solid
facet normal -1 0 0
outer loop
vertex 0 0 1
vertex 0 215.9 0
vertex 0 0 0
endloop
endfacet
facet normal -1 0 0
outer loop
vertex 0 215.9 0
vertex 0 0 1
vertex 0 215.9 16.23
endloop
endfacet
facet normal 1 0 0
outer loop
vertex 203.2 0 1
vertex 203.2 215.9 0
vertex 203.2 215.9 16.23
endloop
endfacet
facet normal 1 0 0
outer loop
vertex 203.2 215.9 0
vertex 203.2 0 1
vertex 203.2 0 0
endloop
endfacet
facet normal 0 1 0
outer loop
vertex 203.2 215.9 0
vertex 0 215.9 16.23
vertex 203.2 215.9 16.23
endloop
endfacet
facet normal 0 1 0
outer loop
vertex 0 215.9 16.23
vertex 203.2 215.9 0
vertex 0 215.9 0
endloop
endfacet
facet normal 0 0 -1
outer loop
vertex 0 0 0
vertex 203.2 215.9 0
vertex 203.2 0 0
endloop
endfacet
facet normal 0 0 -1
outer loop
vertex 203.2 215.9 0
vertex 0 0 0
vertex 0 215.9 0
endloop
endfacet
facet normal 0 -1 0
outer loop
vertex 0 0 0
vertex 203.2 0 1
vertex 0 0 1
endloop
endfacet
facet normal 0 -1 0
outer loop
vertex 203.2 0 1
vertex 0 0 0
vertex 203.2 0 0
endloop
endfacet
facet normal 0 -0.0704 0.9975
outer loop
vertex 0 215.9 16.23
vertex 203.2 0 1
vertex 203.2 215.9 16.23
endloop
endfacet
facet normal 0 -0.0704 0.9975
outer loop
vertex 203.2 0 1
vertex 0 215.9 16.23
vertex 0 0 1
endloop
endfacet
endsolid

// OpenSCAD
// Customize the invocations (which follow
// the modules declarations) at the bottom of the file.

// To get these to print the fine features created
// by the "text" command, I set "Outer wall" to
// 0.22mm.

minh = 1;	// Minimum height
inch = 25.4;
$fn=50;

// The treads are 30 inches wide, which is too wide for the printer.
//treadw = 30 * inch;	// Too large for printer!
treadw = 8 * inch;	// Too large for printer!
//treadw = 2 * inch;	// Too large for printer!
treadl = 8.5 * inch;	// Treaad lengh

module tread (width, height, rise) {
  maxh = minh + height;
  triangle();
}

module deleteme() {
// This thing is a nightmare to describe, so let's set an origin
// at the widest part, nearest the driver, at the bottom. Call that
// the origin. Call it also the "front left bottom" of the object.
flb = [0, 0, 0]; // Front left bottom
// The front face is 69 mm wide, rises to 32 mm, and is tipped back
// to -20mm at the top.
frontxlen = 69;
frontylen = 40;
frontzlen = 30;

// Start with a rectangular solid. Subtract from it suitably
// rotated rectangular solids until the shape is approximated.
// (This bit is buried in the dash.)
difference () {
    cube([frontxlen, frontylen+10, frontzlen]);
    rotate([50, 0, 0]) cube([frontxlen*1.5, frontylen*1.5, frontzlen*1.5]);
    rotate([0, -60, 0]) cube([frontxlen*1.5, frontylen*1.5, frontzlen*1.5]);
    translate([frontxlen, 0, 0])
        rotate([0, -15, 0])
            cube([frontxlen*1.5, frontylen*1.5, frontzlen*1.5]);
    translate([18, frontylen, 1])
        rotate([45, 0, 0])
            cube([43, 150, 5]);
}
// Now attempt a tower for the phone to mount onto.
translate([18, frontylen+15, 0]) 
//    rotate([50, 0, 0])
        difference() {
            cube([43, 150, 5]);
            translate([22, 150-22, 0])
                cylinder(r=2.4, h=5);
        }
}

module fail1() {
scale([treadw,1,1]) cylinder(d1=minh, d2=.75*inch, h=treadl, $fn=4);
}

difference () {
    cube([treadw, treadl, 0.75*inch]); 
    translate([0, 0, minh]) rotate([4.035, 0, 0])
    cube([treadw, treadl+inch, 0.75*inch]); 
}
